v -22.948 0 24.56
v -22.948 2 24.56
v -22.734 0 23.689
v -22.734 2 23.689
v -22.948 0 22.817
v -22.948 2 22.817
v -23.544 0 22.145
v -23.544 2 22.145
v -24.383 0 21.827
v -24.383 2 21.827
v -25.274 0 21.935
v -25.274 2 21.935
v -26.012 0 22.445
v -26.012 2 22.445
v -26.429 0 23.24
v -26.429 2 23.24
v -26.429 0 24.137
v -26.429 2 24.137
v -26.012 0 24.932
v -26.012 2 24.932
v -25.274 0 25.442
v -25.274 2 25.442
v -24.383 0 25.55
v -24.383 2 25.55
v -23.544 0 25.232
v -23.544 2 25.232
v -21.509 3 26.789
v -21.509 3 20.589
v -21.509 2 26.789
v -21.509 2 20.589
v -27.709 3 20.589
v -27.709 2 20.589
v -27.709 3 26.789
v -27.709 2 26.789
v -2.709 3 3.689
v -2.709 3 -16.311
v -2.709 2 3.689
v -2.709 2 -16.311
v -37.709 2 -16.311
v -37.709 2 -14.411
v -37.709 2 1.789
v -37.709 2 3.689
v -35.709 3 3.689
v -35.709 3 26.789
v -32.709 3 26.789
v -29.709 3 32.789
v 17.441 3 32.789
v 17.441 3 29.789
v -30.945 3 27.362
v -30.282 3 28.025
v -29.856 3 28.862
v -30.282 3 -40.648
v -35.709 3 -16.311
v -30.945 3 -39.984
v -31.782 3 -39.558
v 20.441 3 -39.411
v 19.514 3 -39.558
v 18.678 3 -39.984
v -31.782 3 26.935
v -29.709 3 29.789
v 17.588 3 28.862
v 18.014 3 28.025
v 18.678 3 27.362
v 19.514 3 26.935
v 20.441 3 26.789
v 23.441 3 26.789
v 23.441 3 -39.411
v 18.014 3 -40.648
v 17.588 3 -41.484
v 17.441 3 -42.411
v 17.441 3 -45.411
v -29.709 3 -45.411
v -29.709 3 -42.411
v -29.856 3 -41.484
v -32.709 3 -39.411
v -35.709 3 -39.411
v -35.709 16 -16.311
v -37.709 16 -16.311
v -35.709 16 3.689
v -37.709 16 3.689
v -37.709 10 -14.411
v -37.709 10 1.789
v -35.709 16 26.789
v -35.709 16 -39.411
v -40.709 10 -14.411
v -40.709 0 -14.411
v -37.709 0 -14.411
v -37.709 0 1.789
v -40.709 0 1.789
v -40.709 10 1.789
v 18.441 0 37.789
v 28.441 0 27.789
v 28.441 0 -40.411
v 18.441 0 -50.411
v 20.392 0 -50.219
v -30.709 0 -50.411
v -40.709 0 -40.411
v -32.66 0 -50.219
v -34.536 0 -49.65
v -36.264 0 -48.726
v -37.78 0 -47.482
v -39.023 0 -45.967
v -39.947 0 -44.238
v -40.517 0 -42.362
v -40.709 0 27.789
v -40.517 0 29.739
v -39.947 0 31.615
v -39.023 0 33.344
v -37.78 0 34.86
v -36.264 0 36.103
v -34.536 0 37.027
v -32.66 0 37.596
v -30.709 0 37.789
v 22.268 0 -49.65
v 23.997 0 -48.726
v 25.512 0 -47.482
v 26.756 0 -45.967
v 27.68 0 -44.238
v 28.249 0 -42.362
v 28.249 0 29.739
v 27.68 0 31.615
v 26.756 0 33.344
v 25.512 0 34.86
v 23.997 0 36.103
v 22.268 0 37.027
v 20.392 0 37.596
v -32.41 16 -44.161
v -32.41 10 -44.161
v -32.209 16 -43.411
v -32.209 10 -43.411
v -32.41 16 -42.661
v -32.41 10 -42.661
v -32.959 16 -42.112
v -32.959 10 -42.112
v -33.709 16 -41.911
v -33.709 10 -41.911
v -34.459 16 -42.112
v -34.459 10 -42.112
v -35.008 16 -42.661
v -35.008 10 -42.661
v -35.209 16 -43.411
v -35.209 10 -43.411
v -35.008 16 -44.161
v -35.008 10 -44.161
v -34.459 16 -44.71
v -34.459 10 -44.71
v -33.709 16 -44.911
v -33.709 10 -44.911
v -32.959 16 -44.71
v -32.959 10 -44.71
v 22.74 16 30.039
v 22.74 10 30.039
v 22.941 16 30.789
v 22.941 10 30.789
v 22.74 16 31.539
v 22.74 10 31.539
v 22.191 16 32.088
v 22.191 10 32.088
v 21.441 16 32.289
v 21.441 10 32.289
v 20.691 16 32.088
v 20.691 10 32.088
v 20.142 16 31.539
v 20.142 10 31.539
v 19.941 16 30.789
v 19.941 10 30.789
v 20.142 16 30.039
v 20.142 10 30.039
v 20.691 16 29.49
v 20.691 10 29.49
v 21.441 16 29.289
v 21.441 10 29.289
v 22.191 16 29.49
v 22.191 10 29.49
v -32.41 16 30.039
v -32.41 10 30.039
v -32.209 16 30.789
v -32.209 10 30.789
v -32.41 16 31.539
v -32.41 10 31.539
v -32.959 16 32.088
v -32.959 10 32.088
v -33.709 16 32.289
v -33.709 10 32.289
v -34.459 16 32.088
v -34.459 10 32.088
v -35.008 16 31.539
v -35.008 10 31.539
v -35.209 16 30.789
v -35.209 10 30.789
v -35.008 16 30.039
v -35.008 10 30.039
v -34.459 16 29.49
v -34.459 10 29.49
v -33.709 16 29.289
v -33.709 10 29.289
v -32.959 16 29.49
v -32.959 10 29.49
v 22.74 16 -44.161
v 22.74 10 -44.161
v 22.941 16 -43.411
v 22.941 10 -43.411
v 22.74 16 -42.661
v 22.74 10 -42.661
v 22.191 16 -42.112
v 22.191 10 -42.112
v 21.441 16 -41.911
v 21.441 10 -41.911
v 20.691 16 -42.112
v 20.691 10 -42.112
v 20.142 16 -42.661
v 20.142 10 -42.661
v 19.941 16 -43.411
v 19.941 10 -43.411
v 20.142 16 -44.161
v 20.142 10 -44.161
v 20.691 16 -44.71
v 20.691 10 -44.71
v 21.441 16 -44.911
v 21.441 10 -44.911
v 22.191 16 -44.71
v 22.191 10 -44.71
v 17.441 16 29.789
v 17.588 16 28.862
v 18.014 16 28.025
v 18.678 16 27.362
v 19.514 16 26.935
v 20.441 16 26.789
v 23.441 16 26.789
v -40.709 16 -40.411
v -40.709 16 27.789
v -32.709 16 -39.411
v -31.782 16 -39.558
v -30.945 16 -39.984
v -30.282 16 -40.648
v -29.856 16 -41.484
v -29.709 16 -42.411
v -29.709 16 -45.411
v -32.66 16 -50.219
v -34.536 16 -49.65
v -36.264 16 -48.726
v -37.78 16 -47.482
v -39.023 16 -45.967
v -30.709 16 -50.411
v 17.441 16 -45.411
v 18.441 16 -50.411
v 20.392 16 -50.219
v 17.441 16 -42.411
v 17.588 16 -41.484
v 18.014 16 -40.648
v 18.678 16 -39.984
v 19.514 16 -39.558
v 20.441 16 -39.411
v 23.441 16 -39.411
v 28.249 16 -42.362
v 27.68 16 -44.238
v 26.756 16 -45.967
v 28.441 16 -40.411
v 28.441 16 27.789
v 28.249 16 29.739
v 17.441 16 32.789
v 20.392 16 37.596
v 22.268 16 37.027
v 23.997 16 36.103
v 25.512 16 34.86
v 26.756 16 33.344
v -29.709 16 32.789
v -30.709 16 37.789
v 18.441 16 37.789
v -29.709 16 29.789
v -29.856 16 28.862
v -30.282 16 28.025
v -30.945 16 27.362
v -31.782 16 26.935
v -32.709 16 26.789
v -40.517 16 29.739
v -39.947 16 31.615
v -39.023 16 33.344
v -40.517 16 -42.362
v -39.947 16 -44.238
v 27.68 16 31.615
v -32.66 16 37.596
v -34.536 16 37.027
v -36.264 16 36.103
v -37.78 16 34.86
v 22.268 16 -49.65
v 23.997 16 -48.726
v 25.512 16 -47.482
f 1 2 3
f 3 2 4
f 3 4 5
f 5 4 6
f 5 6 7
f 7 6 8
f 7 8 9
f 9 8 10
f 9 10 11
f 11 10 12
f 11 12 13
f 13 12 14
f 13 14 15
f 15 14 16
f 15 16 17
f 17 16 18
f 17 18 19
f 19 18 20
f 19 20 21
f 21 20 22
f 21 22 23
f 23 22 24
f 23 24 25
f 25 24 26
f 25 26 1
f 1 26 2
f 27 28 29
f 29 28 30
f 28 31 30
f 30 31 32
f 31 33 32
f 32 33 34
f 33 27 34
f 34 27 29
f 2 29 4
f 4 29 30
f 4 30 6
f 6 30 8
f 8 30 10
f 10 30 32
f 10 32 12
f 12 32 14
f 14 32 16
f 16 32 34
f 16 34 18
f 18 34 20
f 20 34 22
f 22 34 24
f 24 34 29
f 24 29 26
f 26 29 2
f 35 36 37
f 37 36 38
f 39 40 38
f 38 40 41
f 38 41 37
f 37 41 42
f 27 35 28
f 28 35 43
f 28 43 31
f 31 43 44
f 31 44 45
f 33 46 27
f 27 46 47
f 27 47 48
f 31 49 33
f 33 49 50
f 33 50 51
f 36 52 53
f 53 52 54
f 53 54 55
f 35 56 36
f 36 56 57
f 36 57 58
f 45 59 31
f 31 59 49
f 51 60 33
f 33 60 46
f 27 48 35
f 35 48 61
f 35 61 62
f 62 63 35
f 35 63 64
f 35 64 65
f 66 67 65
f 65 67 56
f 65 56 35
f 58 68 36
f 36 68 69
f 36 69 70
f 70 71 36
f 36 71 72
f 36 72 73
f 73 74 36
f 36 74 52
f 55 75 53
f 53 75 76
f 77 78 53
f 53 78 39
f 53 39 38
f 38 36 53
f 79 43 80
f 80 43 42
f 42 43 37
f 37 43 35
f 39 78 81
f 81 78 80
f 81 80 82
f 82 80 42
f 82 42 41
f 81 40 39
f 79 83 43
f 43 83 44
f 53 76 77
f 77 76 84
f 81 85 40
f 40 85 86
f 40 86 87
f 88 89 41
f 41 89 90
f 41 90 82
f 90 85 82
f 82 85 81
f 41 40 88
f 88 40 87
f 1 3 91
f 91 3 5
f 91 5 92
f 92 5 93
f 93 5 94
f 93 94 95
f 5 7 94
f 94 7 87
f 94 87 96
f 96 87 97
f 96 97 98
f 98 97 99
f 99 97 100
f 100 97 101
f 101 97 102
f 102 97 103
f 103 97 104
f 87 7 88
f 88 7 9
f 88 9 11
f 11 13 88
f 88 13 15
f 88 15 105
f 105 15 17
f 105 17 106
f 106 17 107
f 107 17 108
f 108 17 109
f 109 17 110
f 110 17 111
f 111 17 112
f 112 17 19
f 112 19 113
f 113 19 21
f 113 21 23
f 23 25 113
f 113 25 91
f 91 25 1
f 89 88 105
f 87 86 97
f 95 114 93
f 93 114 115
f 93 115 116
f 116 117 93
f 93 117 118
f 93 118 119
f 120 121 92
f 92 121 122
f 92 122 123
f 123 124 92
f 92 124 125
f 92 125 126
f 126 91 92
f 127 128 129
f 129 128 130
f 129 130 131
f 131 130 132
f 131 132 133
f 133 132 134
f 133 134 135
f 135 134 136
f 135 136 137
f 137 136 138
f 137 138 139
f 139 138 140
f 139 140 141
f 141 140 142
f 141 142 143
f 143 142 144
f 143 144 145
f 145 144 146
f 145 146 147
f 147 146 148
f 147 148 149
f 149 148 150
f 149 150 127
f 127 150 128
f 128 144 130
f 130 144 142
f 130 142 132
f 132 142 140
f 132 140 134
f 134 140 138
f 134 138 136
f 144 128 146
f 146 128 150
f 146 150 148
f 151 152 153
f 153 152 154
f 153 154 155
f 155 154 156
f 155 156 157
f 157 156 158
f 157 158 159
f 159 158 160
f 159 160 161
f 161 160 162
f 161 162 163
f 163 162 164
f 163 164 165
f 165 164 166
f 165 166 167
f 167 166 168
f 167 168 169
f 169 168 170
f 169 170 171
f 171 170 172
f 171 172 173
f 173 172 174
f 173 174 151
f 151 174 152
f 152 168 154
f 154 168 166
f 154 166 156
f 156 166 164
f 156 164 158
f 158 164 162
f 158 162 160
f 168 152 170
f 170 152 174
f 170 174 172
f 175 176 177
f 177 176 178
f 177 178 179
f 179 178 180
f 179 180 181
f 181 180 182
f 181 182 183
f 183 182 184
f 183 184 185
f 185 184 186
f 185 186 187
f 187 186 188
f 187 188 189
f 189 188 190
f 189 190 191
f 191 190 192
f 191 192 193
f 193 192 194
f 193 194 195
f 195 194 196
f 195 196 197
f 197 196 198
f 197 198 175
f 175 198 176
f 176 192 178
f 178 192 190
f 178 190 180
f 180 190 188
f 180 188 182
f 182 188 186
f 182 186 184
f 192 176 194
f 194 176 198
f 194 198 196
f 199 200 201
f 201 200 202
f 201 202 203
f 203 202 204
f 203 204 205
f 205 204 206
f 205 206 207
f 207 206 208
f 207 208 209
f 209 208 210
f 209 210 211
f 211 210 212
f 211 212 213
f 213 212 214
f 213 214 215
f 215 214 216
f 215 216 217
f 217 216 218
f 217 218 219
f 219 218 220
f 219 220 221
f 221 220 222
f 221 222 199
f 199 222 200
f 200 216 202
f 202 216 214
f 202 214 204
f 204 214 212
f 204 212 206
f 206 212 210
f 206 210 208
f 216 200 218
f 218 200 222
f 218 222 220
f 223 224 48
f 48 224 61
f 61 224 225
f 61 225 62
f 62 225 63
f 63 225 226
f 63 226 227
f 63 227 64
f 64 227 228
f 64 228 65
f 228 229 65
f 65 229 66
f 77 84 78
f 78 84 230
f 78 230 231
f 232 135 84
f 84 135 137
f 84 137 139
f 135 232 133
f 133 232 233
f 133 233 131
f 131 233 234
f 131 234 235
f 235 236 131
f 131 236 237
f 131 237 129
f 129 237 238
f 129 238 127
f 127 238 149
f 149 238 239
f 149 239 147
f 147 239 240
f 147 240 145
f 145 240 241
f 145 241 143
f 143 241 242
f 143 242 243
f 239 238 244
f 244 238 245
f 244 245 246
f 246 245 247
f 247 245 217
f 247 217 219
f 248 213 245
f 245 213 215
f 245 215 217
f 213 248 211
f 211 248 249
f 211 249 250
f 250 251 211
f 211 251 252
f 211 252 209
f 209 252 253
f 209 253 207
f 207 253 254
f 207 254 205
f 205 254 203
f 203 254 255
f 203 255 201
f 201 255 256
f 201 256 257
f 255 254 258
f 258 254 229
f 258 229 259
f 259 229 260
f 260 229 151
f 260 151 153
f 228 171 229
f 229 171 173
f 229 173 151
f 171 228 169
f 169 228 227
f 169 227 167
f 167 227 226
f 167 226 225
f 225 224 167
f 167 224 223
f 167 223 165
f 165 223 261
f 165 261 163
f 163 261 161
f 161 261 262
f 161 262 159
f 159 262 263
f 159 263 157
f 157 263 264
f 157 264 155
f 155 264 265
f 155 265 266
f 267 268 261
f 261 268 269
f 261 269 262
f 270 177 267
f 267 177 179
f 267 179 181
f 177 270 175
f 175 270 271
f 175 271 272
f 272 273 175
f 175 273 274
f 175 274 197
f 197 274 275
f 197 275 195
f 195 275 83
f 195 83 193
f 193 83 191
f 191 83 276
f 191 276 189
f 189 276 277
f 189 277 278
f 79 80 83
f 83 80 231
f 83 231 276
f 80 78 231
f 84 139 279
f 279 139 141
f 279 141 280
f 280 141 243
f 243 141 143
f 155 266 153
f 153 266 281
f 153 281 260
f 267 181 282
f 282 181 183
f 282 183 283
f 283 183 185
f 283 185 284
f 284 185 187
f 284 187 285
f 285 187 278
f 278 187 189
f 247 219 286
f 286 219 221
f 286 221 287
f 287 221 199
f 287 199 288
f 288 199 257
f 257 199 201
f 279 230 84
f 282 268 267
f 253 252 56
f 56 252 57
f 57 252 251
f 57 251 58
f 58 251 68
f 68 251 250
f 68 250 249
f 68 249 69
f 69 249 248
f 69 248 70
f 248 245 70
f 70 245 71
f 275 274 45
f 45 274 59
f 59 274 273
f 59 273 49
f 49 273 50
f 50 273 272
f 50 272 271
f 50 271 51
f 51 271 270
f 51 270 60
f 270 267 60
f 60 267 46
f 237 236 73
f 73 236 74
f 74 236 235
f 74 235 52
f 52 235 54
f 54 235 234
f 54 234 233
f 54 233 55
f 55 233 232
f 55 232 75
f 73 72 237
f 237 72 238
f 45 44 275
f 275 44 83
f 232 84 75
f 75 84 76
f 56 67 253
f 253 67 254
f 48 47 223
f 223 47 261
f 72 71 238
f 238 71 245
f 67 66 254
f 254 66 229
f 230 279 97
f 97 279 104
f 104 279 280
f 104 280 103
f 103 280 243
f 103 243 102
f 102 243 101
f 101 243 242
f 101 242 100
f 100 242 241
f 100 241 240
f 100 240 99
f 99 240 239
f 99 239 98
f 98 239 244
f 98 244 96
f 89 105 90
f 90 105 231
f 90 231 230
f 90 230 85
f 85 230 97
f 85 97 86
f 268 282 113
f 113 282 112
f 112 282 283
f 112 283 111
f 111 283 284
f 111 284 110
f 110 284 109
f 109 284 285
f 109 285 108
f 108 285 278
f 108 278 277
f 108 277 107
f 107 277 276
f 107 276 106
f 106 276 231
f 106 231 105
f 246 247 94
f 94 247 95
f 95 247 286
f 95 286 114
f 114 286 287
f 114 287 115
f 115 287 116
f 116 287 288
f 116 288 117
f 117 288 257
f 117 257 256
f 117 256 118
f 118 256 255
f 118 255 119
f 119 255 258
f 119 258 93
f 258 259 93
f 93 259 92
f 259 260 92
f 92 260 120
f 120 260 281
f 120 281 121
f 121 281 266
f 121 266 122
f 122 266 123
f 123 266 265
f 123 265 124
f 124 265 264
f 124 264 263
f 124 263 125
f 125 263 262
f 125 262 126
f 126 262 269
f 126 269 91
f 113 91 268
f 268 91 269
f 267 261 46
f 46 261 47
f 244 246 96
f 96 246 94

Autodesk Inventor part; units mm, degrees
ref_plane "YZ Plane" through (0, 0, 0) normal (1, 0, 0) x (0, 1, 0)
ref_plane "XZ Plane" through (0, 0, 0) normal (0, 1, 0) x (-1, 0, 0)
ref_plane "XY Plane" through (0, 0, 0) normal (0, 0, 1) x (1, 0, 0)
sketch "Sketch1" plane through (0, 0, 0) normal (0, 1, 0) x (-1, 0, 0)
  line L0 (40.7087, 37.7886) -> (-28.4413, 37.7886)
  line L1 (-28.4413, 37.7886) -> (-28.4413, -50.4114)
  line L2 (-28.4413, -50.4114) -> (40.7087, -50.4114)
  line L3 (40.7087, -50.4114) -> (40.7087, 37.7886)
  point P0 (0, 0)
  dimension "d0" = 88.2
  dimension "d1" = 69.15
extrude "Extrusion1" add sketch "Sketch1" along normal blind 3
sketch "Sketch2" plane through (0, 3, 0) normal (0, 1, 0) x (1, 0, 0)
  line L0 (-40.7087, -37.7886) -> (28.4413, -37.7886) projected
  line L1 (28.4413, -37.7886) -> (28.4413, 50.4114) projected
  line L2 (-40.7087, -37.7886) -> (28.4413, -37.7886)
  line L3 (28.4413, -37.7886) -> (28.4413, -32.7886)
  line L4 (28.4413, -32.7886) -> (-40.7087, -32.7886)
  line L5 (-40.7087, -32.7886) -> (-40.7087, -37.7886)
  line L6 (-40.7087, 50.4114) -> (-40.7087, -37.7886) projected
  line L7 (-40.7087, -37.7886) -> (-35.7087, -37.7886)
  line L8 (-35.7087, -37.7886) -> (-35.7087, 50.4114)
  line L9 (-35.7087, 50.4114) -> (-40.7087, 50.4114)
  line L10 (-40.7087, 50.4114) -> (-40.7087, -37.7886)
  line L11 (28.4413, 50.4114) -> (-40.7087, 50.4114) projected
  line L12 (-40.7087, 45.4114) -> (28.4413, 45.4114)
  line L13 (28.4413, 45.4114) -> (28.4413, 50.4114)
  line L14 (28.4413, 50.4114) -> (-40.7087, 50.4114)
  line L15 (-40.7087, 50.4114) -> (-40.7087, 45.4114)
  line L16 (28.4413, 50.4114) -> (23.4413, 50.4114)
  line L17 (23.4413, 50.4114) -> (23.4413, -37.7886)
  line L18 (23.4413, -37.7886) -> (28.4413, -37.7886)
  line L19 (28.4413, -37.7886) -> (28.4413, 50.4114)
  point P0 (0, 0)
  dimension "d4" = 5
  dimension "d5" = 5
  dimension "d6" = 5
  dimension "d7" = 5
extrude "Extrusion2" add sketch "Sketch2" along normal blind 13 contours L5 L4 L8 L0 | L8 L4 L17 L0 | L6 L12 L8 L4 | L17 L4 L1 L0 | L6 L9 L8 L12 | L17 L12 L1 L4 | L8 L11 L17 L12 | L17 L11 L1 L12
fillet "Fillet1" radius 10 4 edges at (28.4413, 8, 37.7886) (28.4413, 8, -50.4114) (-40.7087, 8, 37.7886) (-40.7087, 8, -50.4114)
sketch "Sketch3" plane through (0, 3, 0) normal (0, 1, 0) x (1, 0, 0)
  line L0 (-35.7087, -32.7886) -> (23.4413, -32.7886) projected
  line L1 (-35.7087, -32.7886) -> (-29.7087, -32.7886)
  line L2 (-29.7087, -32.7886) -> (-29.7087, -26.7886)
  line L3 (-29.7087, -26.7886) -> (-35.7087, -26.7886)
  line L4 (-35.7087, -26.7886) -> (-35.7087, -32.7886)
  line L5 (-35.7087, 45.4114) -> (-35.7087, -32.7886) projected
  line L6 (-35.7087, 45.4114) -> (-29.7087, 45.4114)
  line L7 (-29.7087, 45.4114) -> (-29.7087, 39.4114)
  line L8 (-29.7087, 39.4114) -> (-35.7087, 39.4114)
  line L9 (-35.7087, 39.4114) -> (-35.7087, 45.4114)
  line L10 (23.4413, -32.7886) -> (23.4413, 45.4114) projected
  line L11 (23.4413, 45.4114) -> (17.4413, 45.4114)
  line L12 (17.4413, 45.4114) -> (17.4413, 39.4114)
  line L13 (17.4413, 39.4114) -> (23.4413, 39.4114)
  line L14 (23.4413, 39.4114) -> (23.4413, 45.4114)
  line L15 (23.4413, -32.7886) -> (17.4413, -32.7886)
  line L16 (17.4413, -32.7886) -> (17.4413, -26.7886)
  line L17 (17.4413, -26.7886) -> (23.4413, -26.7886)
  line L18 (23.4413, -26.7886) -> (23.4413, -32.7886)
  point P0 (0, 0)
  dimension "d11" = 6
  dimension "d12" = 6
  dimension "d13" = 6
  dimension "d14" = 6
  dimension "d15" = 6
  dimension "d16" = 6
  dimension "d17" = 6
  dimension "d18" = 6
extrude "Extrusion3" add sketch "Sketch3" along normal up to surface (13 mm away)
fillet "Fillet2" radius 3 4 edges at (-29.7087, 9.5, -39.4114) (-29.7087, 9.5, 26.7886) (17.4413, 9.5, -39.4114) (17.4413, 9.5, 26.7886)
sketch "Sketch4" plane through (0, 16, 0) normal (0, 1, 0) x (1, 0, 0)
  line L0 (28.4413, -27.7886) -> (28.4413, 40.4114) projected
  line L1 (-30.7087, -37.7886) -> (18.4413, -37.7886) projected
  line L2 (-40.7087, 40.4114) -> (-40.7087, -27.7886) projected
  line L3 (18.4413, 50.4114) -> (-30.7087, 50.4114) projected
  point P0 (0, 0)
  point P1 (21.4413, -30.7886)
  point P2 (-33.7087, -30.7886)
  point P3 (-33.7087, 43.4114)
  point P4 (21.4413, 43.4114)
  dimension "d22" = 7
  dimension "d23" = 7
  dimension "d24" = 7
  dimension "d25" = 7
  dimension "d26" = 7
  dimension "d27" = 7
  dimension "d28" = 7
  dimension "d29" = 7
hole "Hole1" at (21.4413, 16, 30.7886) at (-33.7087, 16, 30.7886) at (-33.7087, 16, -43.4114) at (21.4413, 16, -43.4114) direction (0, -1, 0) diameter 3 depth 6
sketch "Sketch5" plane through (-35.7087, 3, 26.7886) normal (1, 0, 0) x (0, 0, -1)
  line L0 (66.2, 0) -> (0, 0) projected
  line L1 (28, 0) -> (38.2, 0)
  line L2 (38.2, 0) -> (38.2, 4)
  line L3 (38.2, 4) -> (28, 4)
  line L4 (28, 4) -> (28, 0)
  line L5 (0, 13) -> (0, 0) projected
  point P0 (26.7886, -3)
  point P1 (66.2, 13)
  dimension "d37" = 4
  dimension "d38" = 10.2
  dimension "d39" = 28
  dimension "d40" = 28
  dimension "d41" = 66.2
extrude "Extrusion4" cut sketch "Sketch5" against normal blind 13
sketch "Sketch6" plane through (-40.7087, 0, -40.4114) normal (-1, 0, 0) x (0, 0, 1)
  line L0 (26, 10) -> (42.2, 10)
  line L1 (42.2, 10) -> (42.2, 0)
  line L2 (42.2, 0) -> (26, 0)
  line L3 (26, 0) -> (26, 10)
  line L4 (39.2, 7) -> (39.2, 3) projected
  line L5 (29, 3) -> (29, 7) projected
  line L6 (39.2, 3) -> (29, 3) projected
  line L7 (29, 7) -> (39.2, 7) projected
  point P0 (40.4114, 0)
  dimension "d44" = 3
  dimension "d45" = 3
  dimension "d46" = 3
  dimension "d47" = 3
extrude "Extrusion5" cut sketch "Sketch6" against normal blind 3
sketch "Sketch7" plane through (-35.7087, 3, -39.4114) normal (1, 0, 0) x (0, 0, -1)
  line L0 (-38.2, 0) -> (-66.2, 0) projected
  line L1 (-43.1, 0) -> (-23.1, 0)
  line L2 (-23.1, 0) -> (-23.1, 300)
  line L3 (-23.1, 300) -> (-43.1, 300)
  line L4 (-43.1, 300) -> (-43.1, 0)
  line L5 (-28, 4) -> (-28, 0) projected
  line L6 (-38.2, 0) -> (-38.2, 4) projected
  point P0 (-39.4114, -3)
  dimension "d50" = 20
  dimension "d51" = 4.9
  dimension "d52" = 4.9
  dimension "d53" = 10.2
  dimension "d102" = 300
extrude "Extrusion6" cut sketch "Sketch7" against normal blind 2
sketch "Sketch8" plane through (0, 3, 0) normal (0, 1, 0) x (1, 0, 0)
  line L0 (-37.7087, 16.3114) -> (-37.7087, 14.4114) projected
  line L1 (-37.7087, 16.3114) -> (-2.7087, 16.3114)
  line L2 (-2.7087, 16.3114) -> (-2.7087, -3.6886)
  line L3 (-2.7087, -3.6886) -> (-37.7087, -3.6886)
  line L4 (-37.7087, -3.6886) -> (-37.7087, 16.3114)
  line L5 (-35.7087, -3.6886) -> (-37.7087, -3.6886) projected
  point P0 (0, 0)
  dimension "d56" = 20
  dimension "d57" = 20
  dimension "d58" = 35
extrude "Extrusion7" cut sketch "Sketch8" against normal blind 1
sketch "Sketch14" plane through (0, 3, 0) normal (0, 1, 0) x (1, 0, 0)
  line L0 (-27.7087, -26.7886) -> (-21.5087, -26.7886)
  line L1 (-21.5087, -26.7886) -> (-21.5087, -20.5886)
  line L2 (-21.5087, -20.5886) -> (-27.7087, -20.5886)
  line L3 (-27.7087, -20.5886) -> (-27.7087, -26.7886)
  line L4 (17.4413, -32.7886) -> (-29.7087, -32.7886) projected
  line L5 (-35.7087, -26.7886) -> (-35.7087, -3.6886) projected
  point P0 (0, 0)
  dimension "d103" = 6.2
  dimension "d104" = 6
  dimension "d105" = 8
  dimension "d106" = 6.2
extrude "Extrusion11" cut sketch "Sketch14" against normal blind 1
sketch "Sketch15" plane through (0, 2, 0) normal (0, 1, 0) x (1, 0, 0)
  circle A0 centre (-24.6087, -23.6886) radius 1.875
  line L0 (-21.5087, -20.5886) -> (-21.5087, -26.7886) projected
  line L1 (-27.7087, -26.7886) -> (-27.7087, -20.5886) projected
  line L2 (-27.7087, -20.5886) -> (-21.5087, -20.5886) projected
  line L3 (-21.5087, -26.7886) -> (-27.7087, -26.7886) projected
  point P0 (0, 0)
  dimension "d109" = 3.1
  dimension "d110" = 3.1
  dimension "d111" = 3.1
  dimension "d112" = 3.1
  dimension "d113" = 3.75
extrude "Extrusion12" cut sketch "Sketch15" against normal through all contours A0
equation "\"d5\" = d4"
equation "\"d6\" = d4"
equation "\"d7\" = d4"
equation "\"d11\" = d12"
equation "\"d13\" = d12"
equation "\"d14\" = d13"
equation "\"d15\" = d13"
equation "\"d16\" = d15"
equation "\"d17\" = d15"
equation "\"d18\" = d17"
equation "\"d22\" = d23"
equation "\"d24\" = d23"
equation "\"d25\" = d24"
equation "\"d26\" = d25"
equation "\"d27\" = d26"
equation "\"d28\" = d27"
equation "\"d29\" = d28"
equation "\"d39\" = 0.5 * d41 - 0.5 * d38"
equation "\"d45\" = d44"
equation "\"d47\" = d44"
equation "\"d51\" = -0.5 * d53 + 0.5 * d50"
equation "\"d56\" = d57"
equation "\"d103\" = d106"
equation "\"d109\" = d112"
properties part number "macropad-frame"
